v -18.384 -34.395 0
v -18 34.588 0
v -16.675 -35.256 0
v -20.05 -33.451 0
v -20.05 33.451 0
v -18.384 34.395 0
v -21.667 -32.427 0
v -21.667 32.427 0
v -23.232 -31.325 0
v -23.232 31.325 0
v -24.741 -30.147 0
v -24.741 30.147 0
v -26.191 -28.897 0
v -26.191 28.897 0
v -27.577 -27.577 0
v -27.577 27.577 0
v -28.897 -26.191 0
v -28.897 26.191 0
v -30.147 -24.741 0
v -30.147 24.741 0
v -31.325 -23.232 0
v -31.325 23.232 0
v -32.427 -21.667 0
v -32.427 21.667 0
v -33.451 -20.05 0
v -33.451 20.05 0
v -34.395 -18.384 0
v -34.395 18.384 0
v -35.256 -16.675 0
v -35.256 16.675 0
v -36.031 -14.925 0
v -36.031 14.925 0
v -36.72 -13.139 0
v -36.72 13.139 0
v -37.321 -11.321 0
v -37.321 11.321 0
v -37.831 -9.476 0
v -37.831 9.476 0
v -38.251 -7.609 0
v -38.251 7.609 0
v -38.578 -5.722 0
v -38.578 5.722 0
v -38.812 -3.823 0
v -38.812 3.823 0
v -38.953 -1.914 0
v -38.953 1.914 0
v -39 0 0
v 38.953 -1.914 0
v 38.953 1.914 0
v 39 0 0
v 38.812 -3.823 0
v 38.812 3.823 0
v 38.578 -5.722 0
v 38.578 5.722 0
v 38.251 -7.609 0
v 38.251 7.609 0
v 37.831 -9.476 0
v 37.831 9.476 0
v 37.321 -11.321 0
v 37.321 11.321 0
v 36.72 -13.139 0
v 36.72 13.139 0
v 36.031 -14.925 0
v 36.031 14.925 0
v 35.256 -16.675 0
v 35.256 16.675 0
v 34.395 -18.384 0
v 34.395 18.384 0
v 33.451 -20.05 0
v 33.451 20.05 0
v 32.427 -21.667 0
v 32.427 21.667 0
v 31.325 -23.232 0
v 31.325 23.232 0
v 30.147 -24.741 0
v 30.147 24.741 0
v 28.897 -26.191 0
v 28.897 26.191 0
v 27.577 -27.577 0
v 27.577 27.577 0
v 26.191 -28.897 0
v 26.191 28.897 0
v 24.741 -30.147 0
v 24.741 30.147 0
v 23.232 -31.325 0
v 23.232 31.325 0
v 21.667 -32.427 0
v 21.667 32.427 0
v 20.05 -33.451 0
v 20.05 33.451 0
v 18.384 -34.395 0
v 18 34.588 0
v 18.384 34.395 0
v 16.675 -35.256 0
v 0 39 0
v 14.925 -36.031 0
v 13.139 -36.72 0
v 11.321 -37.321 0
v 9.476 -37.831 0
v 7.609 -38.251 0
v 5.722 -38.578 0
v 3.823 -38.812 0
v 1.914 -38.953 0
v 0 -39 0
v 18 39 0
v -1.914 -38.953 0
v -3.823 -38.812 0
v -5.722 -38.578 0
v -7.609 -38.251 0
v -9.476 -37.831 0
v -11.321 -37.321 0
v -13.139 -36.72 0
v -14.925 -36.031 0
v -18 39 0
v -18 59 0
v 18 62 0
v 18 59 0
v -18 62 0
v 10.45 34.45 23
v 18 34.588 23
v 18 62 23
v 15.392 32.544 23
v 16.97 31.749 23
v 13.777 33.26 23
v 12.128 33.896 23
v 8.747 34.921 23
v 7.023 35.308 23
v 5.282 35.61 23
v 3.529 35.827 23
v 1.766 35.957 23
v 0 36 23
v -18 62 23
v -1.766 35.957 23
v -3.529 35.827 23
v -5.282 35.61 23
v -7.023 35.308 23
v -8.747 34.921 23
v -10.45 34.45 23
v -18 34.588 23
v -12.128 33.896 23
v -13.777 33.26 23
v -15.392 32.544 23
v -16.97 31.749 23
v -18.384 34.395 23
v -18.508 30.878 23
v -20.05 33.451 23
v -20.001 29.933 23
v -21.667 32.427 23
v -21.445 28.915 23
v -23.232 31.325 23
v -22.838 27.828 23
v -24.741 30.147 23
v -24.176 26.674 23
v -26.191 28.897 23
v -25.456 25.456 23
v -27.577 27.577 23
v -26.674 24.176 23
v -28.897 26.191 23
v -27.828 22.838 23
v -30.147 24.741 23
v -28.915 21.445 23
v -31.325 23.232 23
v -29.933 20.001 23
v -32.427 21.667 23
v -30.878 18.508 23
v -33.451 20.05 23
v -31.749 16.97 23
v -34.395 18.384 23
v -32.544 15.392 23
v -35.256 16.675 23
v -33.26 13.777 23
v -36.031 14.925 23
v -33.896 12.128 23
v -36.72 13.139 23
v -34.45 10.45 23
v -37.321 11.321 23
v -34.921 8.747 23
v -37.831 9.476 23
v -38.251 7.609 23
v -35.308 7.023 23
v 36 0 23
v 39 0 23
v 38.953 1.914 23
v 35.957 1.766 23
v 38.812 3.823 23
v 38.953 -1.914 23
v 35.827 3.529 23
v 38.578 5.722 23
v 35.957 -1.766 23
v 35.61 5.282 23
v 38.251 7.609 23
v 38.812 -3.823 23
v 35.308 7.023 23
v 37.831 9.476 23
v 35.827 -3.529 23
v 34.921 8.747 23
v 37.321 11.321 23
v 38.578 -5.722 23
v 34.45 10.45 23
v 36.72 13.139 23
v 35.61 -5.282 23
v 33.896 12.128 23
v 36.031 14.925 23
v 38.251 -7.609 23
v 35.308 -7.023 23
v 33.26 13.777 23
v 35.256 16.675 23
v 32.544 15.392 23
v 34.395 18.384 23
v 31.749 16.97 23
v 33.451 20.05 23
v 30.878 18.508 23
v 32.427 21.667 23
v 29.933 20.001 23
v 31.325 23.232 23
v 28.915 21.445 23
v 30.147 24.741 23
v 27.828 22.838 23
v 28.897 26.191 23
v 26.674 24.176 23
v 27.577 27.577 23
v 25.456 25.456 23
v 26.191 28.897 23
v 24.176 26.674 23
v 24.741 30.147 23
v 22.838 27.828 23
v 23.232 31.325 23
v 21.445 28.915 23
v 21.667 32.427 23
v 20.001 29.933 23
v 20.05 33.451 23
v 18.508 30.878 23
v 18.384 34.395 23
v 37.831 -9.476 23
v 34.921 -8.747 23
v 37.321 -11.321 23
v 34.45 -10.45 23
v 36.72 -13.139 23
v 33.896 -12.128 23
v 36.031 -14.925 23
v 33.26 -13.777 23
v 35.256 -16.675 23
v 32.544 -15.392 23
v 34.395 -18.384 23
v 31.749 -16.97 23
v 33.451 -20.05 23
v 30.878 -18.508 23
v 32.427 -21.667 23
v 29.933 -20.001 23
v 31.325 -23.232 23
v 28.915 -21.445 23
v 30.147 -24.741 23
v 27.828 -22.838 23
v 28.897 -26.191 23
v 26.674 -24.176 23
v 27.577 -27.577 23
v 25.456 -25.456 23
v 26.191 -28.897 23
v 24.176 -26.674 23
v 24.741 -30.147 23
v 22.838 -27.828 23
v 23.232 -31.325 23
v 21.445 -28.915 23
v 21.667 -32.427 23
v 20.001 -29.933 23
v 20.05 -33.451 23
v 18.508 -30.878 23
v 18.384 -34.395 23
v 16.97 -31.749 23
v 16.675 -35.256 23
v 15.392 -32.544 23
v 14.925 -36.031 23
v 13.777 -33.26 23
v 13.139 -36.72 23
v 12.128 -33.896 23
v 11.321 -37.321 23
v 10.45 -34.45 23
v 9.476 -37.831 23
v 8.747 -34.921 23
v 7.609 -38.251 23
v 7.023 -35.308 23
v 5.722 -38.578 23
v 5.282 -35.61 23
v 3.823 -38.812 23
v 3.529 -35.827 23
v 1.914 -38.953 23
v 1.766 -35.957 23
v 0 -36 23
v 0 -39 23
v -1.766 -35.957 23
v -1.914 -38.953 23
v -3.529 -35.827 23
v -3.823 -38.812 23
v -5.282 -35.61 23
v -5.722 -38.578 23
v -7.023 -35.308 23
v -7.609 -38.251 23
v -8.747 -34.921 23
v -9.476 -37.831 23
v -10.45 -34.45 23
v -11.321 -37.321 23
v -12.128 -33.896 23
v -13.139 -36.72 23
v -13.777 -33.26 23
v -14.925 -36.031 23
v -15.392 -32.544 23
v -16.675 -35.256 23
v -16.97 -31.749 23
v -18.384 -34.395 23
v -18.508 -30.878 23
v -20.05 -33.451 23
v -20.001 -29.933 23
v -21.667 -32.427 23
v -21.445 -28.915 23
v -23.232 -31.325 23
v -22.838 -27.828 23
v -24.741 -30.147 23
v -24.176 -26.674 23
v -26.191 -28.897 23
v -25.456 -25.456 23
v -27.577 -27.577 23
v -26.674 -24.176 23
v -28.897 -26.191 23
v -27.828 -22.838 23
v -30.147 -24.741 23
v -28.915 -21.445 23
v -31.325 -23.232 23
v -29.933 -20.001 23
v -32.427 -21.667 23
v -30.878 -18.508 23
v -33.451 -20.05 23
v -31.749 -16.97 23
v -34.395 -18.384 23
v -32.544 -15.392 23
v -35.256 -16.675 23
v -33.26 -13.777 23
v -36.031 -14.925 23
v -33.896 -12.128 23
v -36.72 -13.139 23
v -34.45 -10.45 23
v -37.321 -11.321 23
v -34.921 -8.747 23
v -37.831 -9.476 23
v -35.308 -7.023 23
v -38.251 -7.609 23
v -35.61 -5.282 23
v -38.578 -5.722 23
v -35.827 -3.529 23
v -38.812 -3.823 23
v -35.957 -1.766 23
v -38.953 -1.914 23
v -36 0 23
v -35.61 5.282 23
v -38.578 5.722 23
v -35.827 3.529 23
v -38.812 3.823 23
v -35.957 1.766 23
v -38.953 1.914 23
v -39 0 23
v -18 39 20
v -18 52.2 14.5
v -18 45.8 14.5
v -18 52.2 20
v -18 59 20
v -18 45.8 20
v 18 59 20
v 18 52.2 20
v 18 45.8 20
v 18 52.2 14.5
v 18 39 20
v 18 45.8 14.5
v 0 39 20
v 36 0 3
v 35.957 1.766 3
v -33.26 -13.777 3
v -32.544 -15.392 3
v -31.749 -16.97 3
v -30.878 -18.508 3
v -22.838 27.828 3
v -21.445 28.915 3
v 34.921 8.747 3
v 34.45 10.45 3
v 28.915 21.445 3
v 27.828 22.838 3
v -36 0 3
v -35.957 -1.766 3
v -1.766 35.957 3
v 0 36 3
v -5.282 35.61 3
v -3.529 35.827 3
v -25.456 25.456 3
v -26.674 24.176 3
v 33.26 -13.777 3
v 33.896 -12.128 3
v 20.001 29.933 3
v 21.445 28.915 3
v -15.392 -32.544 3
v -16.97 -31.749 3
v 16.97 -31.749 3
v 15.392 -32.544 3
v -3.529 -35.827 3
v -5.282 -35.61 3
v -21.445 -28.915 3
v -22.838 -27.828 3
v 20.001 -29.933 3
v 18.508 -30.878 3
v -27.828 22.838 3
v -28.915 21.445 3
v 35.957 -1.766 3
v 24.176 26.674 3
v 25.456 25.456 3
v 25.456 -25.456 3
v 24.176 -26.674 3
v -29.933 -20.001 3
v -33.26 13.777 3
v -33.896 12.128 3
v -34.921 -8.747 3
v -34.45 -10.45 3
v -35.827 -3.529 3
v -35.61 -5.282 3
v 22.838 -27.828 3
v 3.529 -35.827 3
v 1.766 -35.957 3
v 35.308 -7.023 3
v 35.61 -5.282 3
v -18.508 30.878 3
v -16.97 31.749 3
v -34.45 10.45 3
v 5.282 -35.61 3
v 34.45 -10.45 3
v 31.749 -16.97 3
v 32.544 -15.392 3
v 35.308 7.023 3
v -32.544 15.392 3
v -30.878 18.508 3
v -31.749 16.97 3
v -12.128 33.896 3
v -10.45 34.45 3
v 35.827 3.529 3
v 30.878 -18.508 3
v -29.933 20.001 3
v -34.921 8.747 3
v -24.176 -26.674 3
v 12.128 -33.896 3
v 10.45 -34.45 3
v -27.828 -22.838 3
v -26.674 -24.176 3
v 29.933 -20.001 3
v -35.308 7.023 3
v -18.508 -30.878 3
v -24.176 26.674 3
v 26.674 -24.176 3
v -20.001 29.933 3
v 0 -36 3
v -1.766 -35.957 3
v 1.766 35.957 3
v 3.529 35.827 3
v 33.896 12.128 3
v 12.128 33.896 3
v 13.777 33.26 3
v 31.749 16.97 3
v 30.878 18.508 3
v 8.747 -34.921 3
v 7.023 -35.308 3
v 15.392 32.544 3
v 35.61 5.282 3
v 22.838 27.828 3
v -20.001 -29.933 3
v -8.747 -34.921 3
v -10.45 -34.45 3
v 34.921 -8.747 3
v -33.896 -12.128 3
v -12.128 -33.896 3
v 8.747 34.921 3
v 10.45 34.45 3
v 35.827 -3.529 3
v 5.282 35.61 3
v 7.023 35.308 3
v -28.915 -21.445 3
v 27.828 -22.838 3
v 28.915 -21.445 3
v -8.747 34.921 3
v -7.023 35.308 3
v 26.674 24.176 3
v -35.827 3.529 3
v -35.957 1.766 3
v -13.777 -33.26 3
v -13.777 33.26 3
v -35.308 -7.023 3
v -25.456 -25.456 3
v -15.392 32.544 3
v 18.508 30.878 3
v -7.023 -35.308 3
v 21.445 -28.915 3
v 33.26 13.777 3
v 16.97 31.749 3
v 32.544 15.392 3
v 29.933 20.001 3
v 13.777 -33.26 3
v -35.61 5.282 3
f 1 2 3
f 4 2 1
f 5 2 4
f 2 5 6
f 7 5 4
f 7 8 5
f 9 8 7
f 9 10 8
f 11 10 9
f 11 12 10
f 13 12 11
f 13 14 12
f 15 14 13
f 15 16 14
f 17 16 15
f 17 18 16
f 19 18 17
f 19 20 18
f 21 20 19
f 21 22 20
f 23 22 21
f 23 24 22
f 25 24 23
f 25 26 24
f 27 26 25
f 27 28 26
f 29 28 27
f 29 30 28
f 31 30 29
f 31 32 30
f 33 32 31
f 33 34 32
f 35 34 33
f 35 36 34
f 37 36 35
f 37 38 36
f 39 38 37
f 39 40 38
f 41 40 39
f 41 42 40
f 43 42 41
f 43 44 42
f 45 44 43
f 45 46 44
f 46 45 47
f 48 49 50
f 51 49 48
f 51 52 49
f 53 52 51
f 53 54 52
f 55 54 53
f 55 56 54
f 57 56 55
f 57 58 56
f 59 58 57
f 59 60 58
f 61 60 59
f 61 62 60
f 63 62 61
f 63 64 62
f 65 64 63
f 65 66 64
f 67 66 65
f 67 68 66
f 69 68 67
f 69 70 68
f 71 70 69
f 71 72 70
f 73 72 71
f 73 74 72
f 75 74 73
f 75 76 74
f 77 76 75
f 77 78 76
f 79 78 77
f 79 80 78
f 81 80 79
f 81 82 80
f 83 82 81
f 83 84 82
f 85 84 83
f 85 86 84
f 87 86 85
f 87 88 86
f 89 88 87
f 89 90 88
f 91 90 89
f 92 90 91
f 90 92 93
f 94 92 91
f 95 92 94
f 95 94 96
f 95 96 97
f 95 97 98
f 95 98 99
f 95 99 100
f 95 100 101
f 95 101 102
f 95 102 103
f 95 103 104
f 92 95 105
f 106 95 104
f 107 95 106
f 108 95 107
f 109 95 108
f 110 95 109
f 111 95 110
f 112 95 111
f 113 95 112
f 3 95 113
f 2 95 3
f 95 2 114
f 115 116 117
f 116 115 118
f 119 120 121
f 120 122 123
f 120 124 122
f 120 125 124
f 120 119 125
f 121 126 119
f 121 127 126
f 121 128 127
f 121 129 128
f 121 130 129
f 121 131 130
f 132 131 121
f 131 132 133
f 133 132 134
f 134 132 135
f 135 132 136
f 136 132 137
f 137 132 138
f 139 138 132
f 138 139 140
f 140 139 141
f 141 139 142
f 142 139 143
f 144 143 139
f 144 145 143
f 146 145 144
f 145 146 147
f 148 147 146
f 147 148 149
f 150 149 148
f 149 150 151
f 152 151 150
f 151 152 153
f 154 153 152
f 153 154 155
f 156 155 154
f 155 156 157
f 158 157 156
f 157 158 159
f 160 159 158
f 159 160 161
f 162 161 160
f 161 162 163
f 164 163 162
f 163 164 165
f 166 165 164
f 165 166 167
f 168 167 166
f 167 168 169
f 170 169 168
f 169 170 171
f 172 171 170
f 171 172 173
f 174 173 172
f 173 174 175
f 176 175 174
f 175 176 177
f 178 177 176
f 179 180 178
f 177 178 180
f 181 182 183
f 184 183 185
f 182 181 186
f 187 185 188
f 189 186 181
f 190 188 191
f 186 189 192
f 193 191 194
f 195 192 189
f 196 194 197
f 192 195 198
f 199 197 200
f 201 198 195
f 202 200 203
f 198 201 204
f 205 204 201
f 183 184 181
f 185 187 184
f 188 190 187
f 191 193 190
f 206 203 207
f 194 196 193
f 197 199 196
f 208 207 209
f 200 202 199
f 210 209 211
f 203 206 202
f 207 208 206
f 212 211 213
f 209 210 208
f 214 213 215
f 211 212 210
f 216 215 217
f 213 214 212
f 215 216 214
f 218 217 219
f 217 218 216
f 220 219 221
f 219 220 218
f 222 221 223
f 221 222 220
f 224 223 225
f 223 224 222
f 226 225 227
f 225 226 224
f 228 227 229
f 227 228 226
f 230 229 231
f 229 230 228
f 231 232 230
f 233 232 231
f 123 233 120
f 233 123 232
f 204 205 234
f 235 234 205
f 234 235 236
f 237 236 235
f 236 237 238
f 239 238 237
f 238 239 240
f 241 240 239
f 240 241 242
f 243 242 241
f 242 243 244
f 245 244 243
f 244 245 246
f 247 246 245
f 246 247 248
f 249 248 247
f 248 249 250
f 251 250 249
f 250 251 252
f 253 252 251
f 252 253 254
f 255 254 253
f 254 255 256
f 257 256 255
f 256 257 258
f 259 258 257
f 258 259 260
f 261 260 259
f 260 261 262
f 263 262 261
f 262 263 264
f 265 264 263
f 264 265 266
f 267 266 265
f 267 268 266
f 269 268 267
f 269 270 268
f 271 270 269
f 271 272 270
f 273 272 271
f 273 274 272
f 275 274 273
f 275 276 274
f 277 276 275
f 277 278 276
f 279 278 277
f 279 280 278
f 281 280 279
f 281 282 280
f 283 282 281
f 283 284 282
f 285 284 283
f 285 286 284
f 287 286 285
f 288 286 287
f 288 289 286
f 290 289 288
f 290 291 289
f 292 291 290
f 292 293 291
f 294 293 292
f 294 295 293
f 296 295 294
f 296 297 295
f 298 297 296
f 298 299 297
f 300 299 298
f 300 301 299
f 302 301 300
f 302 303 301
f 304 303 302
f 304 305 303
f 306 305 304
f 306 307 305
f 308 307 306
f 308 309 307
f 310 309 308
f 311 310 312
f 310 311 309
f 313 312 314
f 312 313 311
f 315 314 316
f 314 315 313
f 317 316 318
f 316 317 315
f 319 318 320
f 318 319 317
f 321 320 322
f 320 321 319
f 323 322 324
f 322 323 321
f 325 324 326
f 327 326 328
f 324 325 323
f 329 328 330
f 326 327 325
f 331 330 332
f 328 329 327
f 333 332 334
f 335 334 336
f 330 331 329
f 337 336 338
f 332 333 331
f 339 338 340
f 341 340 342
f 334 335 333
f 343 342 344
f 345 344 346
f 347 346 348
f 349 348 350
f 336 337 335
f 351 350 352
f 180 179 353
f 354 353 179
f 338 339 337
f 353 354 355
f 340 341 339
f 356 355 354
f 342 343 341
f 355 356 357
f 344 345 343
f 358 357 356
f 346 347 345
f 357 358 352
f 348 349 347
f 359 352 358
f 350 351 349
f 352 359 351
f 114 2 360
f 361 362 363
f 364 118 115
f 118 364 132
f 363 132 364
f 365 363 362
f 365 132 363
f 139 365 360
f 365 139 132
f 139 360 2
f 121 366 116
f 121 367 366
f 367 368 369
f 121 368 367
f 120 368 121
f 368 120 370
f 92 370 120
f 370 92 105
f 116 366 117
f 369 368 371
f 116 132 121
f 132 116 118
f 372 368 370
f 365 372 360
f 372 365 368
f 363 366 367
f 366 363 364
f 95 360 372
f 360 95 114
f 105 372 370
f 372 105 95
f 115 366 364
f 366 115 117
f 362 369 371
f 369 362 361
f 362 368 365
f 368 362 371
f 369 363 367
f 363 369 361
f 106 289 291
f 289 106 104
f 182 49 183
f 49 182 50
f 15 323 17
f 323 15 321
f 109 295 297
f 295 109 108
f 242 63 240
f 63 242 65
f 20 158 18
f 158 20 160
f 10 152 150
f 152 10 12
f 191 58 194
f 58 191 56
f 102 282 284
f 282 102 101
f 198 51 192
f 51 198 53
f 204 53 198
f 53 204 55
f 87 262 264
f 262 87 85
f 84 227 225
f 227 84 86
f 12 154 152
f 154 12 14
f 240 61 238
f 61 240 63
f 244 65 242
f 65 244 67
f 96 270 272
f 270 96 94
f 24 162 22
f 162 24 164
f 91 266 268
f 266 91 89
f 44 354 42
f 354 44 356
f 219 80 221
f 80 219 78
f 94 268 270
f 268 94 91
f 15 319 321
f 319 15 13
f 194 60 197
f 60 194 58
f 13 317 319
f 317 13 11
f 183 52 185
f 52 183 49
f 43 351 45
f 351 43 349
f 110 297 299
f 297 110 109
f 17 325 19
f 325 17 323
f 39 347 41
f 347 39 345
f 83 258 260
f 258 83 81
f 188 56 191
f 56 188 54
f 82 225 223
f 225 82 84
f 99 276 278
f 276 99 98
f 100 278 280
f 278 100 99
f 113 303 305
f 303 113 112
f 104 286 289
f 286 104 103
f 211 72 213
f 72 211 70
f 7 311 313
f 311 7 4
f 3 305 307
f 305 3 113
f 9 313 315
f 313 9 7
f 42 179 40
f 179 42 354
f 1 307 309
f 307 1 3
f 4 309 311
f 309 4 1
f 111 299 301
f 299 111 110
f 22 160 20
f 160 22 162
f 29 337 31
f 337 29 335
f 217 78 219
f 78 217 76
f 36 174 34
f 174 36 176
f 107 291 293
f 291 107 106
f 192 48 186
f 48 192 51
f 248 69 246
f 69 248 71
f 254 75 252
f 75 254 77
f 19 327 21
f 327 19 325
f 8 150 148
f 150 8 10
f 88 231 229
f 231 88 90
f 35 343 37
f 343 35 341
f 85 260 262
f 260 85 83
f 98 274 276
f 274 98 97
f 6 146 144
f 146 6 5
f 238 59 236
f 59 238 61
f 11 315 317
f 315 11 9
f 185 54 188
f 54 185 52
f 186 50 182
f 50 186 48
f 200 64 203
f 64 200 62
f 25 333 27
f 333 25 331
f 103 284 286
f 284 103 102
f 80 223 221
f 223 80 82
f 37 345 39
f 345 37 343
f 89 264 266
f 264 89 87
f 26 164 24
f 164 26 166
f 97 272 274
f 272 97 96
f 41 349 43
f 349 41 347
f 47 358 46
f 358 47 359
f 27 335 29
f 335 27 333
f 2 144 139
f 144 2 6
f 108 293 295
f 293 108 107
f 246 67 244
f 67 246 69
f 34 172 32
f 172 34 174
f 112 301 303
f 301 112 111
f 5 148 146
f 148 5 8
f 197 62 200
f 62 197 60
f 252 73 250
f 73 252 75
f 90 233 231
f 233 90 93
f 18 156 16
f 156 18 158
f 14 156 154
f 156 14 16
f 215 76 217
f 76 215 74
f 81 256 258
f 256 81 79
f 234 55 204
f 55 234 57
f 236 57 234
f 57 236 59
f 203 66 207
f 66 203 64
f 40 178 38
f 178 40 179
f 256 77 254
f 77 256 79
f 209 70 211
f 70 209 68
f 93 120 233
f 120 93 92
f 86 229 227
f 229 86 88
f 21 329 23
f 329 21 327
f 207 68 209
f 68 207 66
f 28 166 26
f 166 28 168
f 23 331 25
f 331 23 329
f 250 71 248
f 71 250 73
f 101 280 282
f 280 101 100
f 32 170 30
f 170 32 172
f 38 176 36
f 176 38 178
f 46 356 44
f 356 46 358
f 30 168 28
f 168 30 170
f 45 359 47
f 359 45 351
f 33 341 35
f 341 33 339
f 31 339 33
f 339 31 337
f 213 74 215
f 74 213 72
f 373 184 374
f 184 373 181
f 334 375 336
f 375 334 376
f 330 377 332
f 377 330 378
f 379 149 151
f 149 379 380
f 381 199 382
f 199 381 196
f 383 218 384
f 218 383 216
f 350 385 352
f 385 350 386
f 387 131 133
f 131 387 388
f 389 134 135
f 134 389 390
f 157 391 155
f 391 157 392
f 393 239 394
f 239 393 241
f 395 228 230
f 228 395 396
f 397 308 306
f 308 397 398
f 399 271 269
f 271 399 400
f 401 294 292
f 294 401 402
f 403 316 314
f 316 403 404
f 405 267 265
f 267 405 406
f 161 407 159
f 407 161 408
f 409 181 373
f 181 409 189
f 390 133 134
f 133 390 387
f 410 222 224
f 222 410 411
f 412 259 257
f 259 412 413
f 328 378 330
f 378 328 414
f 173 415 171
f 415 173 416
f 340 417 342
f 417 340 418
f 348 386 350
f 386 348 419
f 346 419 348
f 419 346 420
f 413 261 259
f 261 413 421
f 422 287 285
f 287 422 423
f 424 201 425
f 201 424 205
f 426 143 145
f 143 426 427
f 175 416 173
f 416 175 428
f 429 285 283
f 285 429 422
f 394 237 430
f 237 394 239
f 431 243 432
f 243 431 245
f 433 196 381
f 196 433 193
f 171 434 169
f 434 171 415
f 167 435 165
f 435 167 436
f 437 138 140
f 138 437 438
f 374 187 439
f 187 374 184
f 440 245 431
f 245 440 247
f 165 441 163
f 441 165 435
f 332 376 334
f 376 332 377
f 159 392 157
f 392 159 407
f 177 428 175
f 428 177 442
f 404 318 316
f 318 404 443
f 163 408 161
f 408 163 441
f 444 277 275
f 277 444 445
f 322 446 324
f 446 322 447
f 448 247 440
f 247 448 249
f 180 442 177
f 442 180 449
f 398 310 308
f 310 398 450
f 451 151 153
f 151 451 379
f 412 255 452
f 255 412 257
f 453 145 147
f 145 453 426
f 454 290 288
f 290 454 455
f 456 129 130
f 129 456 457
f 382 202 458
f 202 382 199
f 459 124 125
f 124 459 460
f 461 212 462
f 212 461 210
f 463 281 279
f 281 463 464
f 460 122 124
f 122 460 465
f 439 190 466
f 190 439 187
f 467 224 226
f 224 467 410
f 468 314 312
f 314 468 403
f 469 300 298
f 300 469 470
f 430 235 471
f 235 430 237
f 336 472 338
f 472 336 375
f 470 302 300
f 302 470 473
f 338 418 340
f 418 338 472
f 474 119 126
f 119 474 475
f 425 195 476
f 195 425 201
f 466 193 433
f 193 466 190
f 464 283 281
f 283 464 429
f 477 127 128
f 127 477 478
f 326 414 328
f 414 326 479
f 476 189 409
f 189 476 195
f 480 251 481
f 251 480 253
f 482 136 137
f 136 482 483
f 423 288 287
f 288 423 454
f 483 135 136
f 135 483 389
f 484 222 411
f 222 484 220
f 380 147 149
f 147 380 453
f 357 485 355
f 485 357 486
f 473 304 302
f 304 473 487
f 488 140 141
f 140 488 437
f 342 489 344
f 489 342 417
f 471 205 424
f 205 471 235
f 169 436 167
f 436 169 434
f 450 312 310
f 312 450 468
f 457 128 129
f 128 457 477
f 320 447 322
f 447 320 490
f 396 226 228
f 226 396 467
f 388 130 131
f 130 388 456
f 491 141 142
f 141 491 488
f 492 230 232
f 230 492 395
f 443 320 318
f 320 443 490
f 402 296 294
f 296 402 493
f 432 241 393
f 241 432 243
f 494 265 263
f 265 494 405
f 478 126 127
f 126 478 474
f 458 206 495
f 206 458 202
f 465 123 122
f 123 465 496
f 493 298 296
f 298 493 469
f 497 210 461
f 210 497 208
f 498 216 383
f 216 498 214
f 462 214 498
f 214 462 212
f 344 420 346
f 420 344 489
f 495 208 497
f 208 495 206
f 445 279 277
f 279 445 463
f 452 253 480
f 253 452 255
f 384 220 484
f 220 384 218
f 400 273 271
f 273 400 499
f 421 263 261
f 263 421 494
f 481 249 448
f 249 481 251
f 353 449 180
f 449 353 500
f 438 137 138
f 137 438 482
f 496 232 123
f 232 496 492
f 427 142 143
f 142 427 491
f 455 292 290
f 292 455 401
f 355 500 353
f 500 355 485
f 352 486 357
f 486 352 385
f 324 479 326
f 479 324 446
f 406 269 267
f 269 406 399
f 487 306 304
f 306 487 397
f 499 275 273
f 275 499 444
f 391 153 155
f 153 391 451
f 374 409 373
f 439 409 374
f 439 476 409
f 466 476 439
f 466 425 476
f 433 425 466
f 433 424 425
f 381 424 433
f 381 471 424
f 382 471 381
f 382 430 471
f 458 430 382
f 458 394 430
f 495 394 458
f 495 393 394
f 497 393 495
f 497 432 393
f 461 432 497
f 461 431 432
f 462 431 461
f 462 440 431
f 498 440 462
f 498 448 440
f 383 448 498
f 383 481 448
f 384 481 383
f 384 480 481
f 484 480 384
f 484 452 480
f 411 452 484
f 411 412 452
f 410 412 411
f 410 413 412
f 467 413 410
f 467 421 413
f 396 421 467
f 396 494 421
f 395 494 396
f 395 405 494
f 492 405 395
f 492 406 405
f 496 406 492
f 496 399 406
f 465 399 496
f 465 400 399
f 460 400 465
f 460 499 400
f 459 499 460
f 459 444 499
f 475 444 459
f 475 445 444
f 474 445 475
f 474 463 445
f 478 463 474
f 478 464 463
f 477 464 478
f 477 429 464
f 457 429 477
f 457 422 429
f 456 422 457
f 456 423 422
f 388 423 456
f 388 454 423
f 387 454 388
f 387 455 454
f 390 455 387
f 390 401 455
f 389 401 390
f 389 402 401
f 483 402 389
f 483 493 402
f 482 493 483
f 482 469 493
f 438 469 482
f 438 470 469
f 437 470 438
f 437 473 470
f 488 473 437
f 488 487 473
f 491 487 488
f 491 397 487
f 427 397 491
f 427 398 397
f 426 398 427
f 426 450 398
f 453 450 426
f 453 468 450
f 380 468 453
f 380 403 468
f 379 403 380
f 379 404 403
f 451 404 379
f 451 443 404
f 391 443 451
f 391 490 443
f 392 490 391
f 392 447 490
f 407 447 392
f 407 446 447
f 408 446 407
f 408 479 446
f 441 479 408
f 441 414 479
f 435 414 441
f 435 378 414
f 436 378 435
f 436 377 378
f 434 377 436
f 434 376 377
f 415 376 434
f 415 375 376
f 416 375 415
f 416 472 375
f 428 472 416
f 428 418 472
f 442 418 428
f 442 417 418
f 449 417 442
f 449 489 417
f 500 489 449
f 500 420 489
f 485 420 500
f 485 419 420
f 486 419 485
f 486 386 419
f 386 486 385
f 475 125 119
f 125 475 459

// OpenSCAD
include <Round-Anything/polyround.scad>

bottle_height = 165;
bottle_dia = 72;
outer_dia = bottle_dia + 6;

pump_distance = 49;
spacing = 6;

thickness = 20;
hole_depth = 17;

centre_width = 6.4;
center_height = 5.5;
extrusion_side = 20.0;
side_thickness = 3;

base();

module base() {
    difference() {
        union() {
            linear_extrude(thickness + side_thickness)
                circle(d=outer_dia, $fn=128);
   
            translate([0,outer_dia/2-3,0])
                linear_extrude(thickness + side_thickness)
                    square([bottle_dia/2,5 ], true);
                    
            translate([0,outer_dia/2 + extrusion_side/2, thickness + side_thickness])
                rotate([180,0,0])
                    extrusion_bracket(bottle_dia/2);
        }
        translate([0,0, side_thickness])
            linear_extrude(thickness)
                circle(d=bottle_dia, $fn=128);               
    }
}


module extrusion_bracket(length) {

    union() {
        difference() {
            linear_extrude(extrusion_side+side_thickness)
                square([length, extrusion_side + 2*side_thickness], true);
            translate([0,0,side_thickness])
                linear_extrude(extrusion_side)
                    square([length, extrusion_side], true);   
        
        }
        translate([0,0,side_thickness])
            linear_extrude(center_height)
                square([length, centre_width], true);         
    }
}
